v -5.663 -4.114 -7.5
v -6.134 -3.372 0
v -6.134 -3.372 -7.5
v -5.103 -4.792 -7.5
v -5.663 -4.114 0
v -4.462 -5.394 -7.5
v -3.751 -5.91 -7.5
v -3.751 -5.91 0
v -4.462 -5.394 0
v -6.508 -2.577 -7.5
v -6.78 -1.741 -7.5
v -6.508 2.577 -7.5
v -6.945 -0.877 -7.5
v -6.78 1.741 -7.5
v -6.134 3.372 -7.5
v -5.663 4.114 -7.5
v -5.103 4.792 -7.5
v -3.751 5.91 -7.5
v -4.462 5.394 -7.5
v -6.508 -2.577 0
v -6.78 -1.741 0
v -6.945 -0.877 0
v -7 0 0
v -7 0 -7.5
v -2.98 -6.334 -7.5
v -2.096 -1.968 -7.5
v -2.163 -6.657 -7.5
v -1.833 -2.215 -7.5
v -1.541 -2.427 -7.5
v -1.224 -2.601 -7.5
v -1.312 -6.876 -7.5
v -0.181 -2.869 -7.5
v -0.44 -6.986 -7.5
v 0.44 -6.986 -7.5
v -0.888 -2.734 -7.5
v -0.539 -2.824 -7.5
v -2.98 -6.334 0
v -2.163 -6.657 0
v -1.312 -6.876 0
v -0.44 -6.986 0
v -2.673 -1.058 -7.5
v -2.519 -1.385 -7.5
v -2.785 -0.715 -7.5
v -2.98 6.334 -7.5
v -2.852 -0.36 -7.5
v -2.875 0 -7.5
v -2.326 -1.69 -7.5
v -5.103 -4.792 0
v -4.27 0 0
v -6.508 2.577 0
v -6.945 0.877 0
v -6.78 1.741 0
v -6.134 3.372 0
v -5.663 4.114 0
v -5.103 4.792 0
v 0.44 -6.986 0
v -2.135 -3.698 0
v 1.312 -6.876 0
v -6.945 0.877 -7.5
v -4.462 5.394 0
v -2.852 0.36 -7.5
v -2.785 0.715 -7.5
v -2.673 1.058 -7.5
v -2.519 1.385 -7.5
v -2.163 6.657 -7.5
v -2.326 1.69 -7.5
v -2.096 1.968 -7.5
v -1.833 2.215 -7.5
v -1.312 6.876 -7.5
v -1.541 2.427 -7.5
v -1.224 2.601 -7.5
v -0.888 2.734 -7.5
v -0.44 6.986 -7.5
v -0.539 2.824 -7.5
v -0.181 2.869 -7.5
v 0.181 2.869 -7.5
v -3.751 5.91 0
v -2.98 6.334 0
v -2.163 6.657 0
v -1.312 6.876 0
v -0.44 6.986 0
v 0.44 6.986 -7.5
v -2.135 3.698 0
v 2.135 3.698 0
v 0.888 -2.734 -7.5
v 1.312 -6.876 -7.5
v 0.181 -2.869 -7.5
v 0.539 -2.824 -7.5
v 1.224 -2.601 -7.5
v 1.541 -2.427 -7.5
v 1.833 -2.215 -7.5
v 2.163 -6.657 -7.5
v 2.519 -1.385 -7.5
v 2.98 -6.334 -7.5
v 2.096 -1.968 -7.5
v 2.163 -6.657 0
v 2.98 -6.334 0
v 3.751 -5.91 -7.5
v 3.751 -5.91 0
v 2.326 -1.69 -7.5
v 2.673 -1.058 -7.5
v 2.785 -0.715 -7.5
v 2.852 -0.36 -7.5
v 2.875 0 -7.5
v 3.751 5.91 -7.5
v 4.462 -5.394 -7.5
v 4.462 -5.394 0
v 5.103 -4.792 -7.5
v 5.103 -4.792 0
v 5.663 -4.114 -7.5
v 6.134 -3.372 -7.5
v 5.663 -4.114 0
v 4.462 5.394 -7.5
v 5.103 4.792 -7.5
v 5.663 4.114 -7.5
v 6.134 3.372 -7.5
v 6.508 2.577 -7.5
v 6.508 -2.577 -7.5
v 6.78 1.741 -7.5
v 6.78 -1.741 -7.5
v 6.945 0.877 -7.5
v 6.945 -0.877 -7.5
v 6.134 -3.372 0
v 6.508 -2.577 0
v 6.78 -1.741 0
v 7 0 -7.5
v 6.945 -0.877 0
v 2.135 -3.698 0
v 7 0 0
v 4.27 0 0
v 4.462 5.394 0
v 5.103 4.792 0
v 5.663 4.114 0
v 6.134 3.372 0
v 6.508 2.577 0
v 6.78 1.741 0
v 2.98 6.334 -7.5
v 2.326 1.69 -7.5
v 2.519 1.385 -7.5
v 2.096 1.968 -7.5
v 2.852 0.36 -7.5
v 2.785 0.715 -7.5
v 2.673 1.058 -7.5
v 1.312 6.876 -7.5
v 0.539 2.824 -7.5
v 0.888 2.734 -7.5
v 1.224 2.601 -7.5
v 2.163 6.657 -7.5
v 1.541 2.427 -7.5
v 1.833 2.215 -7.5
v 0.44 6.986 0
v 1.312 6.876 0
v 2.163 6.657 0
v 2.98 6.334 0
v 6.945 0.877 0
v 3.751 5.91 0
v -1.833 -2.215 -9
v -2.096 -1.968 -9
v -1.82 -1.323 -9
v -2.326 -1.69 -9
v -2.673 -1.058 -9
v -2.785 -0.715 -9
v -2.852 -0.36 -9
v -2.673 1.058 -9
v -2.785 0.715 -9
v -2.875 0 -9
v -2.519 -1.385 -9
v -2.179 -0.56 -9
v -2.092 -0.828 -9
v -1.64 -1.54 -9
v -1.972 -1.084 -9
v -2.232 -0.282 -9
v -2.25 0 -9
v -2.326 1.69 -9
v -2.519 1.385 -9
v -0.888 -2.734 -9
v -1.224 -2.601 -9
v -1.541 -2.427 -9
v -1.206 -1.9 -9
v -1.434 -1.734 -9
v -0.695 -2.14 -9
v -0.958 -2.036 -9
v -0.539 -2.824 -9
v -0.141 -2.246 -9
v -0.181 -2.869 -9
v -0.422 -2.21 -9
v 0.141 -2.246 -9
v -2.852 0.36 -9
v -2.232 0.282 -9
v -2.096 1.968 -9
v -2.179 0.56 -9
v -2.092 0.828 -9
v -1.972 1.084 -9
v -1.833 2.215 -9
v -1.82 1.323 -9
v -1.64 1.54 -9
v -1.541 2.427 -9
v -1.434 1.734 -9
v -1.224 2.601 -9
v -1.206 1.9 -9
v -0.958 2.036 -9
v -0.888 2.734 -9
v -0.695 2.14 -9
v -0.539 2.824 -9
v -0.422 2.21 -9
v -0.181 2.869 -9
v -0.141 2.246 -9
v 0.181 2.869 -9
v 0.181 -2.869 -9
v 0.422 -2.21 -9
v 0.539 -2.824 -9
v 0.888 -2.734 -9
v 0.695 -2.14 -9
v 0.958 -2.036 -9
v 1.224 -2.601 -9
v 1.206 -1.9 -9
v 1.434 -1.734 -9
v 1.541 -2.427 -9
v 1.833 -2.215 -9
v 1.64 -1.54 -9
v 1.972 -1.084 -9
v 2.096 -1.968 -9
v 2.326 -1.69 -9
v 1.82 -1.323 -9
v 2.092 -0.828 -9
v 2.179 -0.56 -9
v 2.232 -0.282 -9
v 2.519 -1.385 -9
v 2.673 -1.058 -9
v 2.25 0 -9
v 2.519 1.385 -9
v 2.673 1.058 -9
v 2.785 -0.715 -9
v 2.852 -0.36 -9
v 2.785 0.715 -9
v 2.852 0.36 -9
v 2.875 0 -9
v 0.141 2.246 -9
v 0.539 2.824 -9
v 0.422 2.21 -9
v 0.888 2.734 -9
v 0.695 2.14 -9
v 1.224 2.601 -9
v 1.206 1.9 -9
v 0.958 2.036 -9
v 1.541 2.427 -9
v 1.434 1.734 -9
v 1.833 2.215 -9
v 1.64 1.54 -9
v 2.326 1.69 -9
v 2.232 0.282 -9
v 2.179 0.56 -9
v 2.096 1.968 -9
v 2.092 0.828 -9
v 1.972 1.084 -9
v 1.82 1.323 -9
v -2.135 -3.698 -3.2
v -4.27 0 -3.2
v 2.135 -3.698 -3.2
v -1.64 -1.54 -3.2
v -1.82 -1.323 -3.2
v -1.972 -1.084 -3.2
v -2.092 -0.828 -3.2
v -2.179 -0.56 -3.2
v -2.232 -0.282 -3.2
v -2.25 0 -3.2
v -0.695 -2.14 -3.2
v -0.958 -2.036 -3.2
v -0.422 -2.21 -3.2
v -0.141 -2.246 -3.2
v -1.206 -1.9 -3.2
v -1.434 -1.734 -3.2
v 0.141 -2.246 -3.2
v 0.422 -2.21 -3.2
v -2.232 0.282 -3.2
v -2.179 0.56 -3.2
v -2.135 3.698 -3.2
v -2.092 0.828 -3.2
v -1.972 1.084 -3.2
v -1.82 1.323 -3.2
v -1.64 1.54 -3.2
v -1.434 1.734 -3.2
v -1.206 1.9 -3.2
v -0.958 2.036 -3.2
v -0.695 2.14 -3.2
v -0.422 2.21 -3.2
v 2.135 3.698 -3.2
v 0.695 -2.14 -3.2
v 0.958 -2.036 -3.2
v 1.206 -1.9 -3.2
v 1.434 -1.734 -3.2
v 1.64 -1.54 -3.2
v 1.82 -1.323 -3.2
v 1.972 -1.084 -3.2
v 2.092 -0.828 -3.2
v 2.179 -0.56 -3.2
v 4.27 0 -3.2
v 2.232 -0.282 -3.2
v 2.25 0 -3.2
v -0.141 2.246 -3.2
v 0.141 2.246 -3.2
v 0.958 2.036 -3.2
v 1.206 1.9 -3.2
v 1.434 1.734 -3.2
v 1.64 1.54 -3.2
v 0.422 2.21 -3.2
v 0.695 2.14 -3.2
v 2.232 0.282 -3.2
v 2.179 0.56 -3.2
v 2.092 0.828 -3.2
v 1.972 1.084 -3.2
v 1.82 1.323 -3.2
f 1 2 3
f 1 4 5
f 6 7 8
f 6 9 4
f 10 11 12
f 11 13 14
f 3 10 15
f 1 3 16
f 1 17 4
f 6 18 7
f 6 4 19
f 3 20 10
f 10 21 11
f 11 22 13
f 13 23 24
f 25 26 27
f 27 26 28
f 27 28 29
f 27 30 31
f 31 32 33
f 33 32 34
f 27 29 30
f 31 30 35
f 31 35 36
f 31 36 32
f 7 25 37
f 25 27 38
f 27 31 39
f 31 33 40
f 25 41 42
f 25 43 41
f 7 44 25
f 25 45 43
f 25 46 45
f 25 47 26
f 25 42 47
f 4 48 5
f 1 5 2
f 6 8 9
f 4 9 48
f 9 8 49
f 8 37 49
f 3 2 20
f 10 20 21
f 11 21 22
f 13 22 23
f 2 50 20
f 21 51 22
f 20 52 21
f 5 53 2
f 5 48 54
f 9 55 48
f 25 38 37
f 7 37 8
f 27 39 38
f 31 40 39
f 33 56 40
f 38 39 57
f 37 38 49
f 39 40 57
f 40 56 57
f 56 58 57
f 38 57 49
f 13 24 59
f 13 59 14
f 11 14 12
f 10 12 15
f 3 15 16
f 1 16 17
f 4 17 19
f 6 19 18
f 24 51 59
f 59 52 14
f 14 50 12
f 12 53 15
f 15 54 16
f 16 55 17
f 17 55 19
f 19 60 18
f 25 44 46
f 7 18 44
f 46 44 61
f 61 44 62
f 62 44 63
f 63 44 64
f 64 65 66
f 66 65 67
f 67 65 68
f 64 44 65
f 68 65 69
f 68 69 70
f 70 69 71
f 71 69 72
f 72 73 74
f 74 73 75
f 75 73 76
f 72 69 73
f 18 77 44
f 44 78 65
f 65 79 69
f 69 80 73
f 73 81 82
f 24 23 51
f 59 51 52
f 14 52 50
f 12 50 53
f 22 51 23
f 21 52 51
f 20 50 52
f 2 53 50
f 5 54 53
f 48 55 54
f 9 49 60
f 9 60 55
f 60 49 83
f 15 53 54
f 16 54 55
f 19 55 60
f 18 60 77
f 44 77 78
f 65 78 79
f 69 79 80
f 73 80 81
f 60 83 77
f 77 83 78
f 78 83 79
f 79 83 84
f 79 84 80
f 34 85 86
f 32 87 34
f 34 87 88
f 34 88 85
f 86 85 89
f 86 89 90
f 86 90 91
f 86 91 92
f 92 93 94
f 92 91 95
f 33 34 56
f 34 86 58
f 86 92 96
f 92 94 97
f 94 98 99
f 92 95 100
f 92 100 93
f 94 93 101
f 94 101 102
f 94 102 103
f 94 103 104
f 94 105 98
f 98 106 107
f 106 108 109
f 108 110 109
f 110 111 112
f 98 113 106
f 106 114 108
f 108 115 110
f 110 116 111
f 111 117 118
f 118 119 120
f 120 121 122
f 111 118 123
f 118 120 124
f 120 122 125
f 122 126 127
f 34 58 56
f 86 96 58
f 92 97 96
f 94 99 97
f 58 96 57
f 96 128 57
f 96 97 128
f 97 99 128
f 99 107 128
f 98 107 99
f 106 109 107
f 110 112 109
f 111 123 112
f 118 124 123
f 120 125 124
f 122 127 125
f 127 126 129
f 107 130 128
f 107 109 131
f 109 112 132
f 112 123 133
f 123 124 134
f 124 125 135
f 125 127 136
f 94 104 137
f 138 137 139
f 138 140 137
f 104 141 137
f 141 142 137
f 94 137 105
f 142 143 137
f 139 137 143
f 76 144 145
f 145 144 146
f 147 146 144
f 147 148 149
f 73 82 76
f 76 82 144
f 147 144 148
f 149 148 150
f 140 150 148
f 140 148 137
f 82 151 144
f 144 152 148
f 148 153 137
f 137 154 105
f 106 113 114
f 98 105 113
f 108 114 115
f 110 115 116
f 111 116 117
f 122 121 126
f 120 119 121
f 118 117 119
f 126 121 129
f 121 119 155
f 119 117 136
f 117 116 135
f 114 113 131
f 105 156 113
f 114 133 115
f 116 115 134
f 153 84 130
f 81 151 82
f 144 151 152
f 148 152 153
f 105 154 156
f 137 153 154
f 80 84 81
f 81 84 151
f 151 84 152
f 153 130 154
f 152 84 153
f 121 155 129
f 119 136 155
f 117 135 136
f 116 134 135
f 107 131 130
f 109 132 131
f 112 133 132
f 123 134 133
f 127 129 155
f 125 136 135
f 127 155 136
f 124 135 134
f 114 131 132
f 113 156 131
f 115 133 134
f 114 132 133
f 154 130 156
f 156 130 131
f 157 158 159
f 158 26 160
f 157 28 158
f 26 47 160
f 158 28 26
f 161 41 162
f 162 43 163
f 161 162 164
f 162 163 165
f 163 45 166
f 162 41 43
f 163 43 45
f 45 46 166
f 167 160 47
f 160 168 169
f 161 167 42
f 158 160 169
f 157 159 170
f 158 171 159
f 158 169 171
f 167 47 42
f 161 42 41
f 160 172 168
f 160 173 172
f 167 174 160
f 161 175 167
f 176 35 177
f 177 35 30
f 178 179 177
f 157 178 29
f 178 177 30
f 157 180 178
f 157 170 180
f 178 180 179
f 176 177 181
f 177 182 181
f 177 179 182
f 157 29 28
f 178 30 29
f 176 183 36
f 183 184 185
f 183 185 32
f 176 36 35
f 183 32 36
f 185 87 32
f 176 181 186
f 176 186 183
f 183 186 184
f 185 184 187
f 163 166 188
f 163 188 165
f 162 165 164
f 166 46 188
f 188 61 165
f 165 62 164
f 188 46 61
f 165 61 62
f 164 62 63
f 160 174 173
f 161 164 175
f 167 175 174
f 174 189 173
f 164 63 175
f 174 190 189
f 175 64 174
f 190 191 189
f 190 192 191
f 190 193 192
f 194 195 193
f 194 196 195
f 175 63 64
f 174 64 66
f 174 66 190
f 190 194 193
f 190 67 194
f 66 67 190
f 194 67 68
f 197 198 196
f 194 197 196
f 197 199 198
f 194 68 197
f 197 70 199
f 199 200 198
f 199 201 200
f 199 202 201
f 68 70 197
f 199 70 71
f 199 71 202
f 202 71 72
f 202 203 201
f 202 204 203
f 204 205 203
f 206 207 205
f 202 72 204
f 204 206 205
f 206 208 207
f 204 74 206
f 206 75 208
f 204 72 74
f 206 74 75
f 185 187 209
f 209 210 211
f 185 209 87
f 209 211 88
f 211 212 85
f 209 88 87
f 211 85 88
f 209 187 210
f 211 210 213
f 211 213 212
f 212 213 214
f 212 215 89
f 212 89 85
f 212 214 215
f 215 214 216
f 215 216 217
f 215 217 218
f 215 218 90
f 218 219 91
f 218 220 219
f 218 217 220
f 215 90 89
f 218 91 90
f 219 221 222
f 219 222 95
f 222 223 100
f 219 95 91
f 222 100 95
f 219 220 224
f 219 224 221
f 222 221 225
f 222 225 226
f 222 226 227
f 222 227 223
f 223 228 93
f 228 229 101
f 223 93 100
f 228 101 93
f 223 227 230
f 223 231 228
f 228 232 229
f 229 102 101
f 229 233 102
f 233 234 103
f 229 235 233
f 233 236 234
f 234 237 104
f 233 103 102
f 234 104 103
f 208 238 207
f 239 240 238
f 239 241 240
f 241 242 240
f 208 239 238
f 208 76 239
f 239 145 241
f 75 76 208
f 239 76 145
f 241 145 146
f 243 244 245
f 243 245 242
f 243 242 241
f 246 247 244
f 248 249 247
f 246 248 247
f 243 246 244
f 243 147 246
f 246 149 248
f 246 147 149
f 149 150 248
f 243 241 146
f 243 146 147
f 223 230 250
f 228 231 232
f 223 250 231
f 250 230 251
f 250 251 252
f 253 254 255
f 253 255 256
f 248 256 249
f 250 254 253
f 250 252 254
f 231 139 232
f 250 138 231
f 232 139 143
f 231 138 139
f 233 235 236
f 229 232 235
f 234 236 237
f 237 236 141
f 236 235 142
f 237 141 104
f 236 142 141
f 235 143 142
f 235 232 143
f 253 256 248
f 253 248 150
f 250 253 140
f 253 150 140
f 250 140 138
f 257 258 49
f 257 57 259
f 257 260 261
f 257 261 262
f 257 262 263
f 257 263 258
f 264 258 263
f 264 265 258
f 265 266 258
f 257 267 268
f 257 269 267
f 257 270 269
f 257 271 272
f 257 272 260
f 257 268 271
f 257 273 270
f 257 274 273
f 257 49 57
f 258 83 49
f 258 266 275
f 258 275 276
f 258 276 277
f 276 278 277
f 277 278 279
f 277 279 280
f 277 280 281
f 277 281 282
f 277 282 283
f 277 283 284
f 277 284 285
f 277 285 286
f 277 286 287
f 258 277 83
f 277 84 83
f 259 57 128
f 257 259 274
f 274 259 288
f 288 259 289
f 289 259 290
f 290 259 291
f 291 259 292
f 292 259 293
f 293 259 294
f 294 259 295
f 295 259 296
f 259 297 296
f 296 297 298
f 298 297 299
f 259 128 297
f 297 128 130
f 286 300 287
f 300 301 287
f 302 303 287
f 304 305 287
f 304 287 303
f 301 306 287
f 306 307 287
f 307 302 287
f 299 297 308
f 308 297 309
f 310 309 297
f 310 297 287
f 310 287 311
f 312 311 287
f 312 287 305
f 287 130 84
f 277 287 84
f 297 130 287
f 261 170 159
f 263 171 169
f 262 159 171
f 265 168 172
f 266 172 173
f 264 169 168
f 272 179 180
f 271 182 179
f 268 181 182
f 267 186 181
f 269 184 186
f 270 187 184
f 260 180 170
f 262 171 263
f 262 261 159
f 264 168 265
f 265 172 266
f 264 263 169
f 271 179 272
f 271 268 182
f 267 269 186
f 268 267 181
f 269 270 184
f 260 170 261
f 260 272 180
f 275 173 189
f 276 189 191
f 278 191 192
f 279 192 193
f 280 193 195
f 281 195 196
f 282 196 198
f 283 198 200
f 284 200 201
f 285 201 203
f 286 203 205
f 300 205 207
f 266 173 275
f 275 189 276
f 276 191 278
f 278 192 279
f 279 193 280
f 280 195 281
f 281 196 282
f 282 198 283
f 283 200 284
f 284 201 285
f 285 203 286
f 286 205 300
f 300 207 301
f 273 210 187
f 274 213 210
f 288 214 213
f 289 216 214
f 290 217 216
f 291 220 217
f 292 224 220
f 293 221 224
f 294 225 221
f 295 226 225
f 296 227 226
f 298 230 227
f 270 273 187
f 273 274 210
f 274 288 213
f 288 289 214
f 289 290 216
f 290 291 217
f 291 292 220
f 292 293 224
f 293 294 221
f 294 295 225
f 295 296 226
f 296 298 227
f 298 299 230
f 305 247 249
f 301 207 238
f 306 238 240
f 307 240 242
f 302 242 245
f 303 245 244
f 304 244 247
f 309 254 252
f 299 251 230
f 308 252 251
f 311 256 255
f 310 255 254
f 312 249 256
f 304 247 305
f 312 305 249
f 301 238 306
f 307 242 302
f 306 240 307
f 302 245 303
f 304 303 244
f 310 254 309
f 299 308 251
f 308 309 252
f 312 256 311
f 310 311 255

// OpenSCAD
$fn = 50;

difference() {
	union() {
		translate(v = [0, 0, -7.5]) {
			cylinder(h = 7.5, r = 7.0);
		}
		#translate(v = [0, 0, -9.0]) {
			cylinder(h = 9, r = 2.875);
		}
	}
	union() {
		translate(v = [0, 0, 0]) {
			rotate(a = [0, 0, 0]) {
				difference() {
					union() {
						translate(v = [0, 0, -3.2]) {
							linear_extrude(height = 3.2) {
								polygon(points = [[4.2698, 0.0], [2.1349000000000005, 3.697755269078796], [-2.134899999999999, 3.6977552690787965], [-4.2698, 5.228996902999369e-16], [-2.134900000000002, -3.6977552690787956], [2.1348999999999974, -3.697755269078798]]);
							}
						}
					}
					union();
				}
			}
		}
		#translate(v = [0, 0, -100.0]) {
			cylinder(h = 200, r = 2.25);
		}
	}
}
